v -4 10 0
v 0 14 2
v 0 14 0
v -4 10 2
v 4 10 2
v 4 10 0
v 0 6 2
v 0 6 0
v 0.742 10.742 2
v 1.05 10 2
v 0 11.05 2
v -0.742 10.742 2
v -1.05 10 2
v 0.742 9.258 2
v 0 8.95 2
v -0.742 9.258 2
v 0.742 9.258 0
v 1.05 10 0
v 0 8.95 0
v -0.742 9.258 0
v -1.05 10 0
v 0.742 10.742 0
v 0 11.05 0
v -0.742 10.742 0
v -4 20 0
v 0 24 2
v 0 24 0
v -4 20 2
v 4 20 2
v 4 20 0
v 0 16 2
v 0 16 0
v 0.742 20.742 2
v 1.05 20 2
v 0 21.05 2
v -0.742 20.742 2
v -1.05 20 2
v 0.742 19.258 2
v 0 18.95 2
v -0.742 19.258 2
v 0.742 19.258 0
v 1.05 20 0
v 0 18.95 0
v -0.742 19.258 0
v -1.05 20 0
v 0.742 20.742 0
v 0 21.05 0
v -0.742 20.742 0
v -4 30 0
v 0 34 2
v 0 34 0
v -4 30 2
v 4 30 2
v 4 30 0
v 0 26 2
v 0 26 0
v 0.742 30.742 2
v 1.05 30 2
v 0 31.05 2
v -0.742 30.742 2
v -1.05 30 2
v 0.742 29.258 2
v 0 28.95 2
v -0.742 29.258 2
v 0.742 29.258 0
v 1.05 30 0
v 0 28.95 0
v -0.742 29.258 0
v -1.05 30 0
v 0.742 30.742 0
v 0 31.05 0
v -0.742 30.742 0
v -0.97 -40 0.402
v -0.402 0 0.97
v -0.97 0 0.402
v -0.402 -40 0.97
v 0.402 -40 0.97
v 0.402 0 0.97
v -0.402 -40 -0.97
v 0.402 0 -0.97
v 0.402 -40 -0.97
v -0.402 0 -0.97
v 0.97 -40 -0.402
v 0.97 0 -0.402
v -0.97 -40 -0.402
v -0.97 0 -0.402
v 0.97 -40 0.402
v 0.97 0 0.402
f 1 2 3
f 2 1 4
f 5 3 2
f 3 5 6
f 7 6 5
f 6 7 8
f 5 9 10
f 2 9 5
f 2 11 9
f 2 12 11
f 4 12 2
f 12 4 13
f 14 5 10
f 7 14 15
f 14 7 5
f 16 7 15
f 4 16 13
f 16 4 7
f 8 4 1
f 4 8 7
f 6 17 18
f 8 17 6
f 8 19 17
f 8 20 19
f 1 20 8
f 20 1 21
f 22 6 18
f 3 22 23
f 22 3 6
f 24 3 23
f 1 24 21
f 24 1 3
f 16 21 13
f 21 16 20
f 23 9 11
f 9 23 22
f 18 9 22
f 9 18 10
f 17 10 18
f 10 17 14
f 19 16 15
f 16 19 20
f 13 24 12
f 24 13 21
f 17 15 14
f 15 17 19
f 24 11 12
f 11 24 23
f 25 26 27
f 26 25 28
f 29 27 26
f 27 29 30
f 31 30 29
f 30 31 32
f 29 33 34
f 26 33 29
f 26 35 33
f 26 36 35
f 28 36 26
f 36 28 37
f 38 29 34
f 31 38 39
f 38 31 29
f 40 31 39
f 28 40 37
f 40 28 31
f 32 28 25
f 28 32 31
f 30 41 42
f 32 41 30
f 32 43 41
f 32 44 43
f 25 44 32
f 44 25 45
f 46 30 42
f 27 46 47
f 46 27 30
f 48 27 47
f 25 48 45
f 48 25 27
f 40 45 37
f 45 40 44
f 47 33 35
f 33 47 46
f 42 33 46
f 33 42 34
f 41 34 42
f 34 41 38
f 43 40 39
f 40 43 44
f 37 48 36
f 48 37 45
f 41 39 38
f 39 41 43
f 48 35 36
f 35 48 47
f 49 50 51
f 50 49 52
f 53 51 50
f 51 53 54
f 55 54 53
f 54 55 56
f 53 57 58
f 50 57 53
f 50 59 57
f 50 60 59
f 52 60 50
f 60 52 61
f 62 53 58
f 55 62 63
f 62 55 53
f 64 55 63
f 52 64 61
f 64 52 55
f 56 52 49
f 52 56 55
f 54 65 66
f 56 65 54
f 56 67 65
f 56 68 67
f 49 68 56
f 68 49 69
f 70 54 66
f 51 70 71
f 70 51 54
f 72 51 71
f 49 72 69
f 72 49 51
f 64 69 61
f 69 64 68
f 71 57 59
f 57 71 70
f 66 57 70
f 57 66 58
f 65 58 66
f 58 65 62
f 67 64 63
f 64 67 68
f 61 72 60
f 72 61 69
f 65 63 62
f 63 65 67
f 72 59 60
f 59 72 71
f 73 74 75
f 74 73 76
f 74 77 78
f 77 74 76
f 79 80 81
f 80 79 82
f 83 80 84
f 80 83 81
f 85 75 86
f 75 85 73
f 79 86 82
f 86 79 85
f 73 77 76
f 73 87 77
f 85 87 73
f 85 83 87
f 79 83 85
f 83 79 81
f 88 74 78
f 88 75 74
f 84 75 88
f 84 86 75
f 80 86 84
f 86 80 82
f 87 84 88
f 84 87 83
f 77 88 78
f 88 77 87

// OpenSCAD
rotate([90,0,0])
rotate([0,0,67.5])
pin();

translate([0,10,0]) {
    difference() {
        cylinder(d=8, h=2, $fn=4);
        translate([0,0,-1])
        pin();
    }
}
translate([0,20,0]) {
    difference() {
        cylinder(d=8, h=2, $fn=4);
        translate([0,0,-1])
        pin();
    }
}

translate([0,30,0]) {
    difference() {
        cylinder(d=8, h=2, $fn=4);
        translate([0,0,-1])
        pin();
    }
}

module pin() {
 cylinder(h=40, r=1.05, $fn=8);
}
